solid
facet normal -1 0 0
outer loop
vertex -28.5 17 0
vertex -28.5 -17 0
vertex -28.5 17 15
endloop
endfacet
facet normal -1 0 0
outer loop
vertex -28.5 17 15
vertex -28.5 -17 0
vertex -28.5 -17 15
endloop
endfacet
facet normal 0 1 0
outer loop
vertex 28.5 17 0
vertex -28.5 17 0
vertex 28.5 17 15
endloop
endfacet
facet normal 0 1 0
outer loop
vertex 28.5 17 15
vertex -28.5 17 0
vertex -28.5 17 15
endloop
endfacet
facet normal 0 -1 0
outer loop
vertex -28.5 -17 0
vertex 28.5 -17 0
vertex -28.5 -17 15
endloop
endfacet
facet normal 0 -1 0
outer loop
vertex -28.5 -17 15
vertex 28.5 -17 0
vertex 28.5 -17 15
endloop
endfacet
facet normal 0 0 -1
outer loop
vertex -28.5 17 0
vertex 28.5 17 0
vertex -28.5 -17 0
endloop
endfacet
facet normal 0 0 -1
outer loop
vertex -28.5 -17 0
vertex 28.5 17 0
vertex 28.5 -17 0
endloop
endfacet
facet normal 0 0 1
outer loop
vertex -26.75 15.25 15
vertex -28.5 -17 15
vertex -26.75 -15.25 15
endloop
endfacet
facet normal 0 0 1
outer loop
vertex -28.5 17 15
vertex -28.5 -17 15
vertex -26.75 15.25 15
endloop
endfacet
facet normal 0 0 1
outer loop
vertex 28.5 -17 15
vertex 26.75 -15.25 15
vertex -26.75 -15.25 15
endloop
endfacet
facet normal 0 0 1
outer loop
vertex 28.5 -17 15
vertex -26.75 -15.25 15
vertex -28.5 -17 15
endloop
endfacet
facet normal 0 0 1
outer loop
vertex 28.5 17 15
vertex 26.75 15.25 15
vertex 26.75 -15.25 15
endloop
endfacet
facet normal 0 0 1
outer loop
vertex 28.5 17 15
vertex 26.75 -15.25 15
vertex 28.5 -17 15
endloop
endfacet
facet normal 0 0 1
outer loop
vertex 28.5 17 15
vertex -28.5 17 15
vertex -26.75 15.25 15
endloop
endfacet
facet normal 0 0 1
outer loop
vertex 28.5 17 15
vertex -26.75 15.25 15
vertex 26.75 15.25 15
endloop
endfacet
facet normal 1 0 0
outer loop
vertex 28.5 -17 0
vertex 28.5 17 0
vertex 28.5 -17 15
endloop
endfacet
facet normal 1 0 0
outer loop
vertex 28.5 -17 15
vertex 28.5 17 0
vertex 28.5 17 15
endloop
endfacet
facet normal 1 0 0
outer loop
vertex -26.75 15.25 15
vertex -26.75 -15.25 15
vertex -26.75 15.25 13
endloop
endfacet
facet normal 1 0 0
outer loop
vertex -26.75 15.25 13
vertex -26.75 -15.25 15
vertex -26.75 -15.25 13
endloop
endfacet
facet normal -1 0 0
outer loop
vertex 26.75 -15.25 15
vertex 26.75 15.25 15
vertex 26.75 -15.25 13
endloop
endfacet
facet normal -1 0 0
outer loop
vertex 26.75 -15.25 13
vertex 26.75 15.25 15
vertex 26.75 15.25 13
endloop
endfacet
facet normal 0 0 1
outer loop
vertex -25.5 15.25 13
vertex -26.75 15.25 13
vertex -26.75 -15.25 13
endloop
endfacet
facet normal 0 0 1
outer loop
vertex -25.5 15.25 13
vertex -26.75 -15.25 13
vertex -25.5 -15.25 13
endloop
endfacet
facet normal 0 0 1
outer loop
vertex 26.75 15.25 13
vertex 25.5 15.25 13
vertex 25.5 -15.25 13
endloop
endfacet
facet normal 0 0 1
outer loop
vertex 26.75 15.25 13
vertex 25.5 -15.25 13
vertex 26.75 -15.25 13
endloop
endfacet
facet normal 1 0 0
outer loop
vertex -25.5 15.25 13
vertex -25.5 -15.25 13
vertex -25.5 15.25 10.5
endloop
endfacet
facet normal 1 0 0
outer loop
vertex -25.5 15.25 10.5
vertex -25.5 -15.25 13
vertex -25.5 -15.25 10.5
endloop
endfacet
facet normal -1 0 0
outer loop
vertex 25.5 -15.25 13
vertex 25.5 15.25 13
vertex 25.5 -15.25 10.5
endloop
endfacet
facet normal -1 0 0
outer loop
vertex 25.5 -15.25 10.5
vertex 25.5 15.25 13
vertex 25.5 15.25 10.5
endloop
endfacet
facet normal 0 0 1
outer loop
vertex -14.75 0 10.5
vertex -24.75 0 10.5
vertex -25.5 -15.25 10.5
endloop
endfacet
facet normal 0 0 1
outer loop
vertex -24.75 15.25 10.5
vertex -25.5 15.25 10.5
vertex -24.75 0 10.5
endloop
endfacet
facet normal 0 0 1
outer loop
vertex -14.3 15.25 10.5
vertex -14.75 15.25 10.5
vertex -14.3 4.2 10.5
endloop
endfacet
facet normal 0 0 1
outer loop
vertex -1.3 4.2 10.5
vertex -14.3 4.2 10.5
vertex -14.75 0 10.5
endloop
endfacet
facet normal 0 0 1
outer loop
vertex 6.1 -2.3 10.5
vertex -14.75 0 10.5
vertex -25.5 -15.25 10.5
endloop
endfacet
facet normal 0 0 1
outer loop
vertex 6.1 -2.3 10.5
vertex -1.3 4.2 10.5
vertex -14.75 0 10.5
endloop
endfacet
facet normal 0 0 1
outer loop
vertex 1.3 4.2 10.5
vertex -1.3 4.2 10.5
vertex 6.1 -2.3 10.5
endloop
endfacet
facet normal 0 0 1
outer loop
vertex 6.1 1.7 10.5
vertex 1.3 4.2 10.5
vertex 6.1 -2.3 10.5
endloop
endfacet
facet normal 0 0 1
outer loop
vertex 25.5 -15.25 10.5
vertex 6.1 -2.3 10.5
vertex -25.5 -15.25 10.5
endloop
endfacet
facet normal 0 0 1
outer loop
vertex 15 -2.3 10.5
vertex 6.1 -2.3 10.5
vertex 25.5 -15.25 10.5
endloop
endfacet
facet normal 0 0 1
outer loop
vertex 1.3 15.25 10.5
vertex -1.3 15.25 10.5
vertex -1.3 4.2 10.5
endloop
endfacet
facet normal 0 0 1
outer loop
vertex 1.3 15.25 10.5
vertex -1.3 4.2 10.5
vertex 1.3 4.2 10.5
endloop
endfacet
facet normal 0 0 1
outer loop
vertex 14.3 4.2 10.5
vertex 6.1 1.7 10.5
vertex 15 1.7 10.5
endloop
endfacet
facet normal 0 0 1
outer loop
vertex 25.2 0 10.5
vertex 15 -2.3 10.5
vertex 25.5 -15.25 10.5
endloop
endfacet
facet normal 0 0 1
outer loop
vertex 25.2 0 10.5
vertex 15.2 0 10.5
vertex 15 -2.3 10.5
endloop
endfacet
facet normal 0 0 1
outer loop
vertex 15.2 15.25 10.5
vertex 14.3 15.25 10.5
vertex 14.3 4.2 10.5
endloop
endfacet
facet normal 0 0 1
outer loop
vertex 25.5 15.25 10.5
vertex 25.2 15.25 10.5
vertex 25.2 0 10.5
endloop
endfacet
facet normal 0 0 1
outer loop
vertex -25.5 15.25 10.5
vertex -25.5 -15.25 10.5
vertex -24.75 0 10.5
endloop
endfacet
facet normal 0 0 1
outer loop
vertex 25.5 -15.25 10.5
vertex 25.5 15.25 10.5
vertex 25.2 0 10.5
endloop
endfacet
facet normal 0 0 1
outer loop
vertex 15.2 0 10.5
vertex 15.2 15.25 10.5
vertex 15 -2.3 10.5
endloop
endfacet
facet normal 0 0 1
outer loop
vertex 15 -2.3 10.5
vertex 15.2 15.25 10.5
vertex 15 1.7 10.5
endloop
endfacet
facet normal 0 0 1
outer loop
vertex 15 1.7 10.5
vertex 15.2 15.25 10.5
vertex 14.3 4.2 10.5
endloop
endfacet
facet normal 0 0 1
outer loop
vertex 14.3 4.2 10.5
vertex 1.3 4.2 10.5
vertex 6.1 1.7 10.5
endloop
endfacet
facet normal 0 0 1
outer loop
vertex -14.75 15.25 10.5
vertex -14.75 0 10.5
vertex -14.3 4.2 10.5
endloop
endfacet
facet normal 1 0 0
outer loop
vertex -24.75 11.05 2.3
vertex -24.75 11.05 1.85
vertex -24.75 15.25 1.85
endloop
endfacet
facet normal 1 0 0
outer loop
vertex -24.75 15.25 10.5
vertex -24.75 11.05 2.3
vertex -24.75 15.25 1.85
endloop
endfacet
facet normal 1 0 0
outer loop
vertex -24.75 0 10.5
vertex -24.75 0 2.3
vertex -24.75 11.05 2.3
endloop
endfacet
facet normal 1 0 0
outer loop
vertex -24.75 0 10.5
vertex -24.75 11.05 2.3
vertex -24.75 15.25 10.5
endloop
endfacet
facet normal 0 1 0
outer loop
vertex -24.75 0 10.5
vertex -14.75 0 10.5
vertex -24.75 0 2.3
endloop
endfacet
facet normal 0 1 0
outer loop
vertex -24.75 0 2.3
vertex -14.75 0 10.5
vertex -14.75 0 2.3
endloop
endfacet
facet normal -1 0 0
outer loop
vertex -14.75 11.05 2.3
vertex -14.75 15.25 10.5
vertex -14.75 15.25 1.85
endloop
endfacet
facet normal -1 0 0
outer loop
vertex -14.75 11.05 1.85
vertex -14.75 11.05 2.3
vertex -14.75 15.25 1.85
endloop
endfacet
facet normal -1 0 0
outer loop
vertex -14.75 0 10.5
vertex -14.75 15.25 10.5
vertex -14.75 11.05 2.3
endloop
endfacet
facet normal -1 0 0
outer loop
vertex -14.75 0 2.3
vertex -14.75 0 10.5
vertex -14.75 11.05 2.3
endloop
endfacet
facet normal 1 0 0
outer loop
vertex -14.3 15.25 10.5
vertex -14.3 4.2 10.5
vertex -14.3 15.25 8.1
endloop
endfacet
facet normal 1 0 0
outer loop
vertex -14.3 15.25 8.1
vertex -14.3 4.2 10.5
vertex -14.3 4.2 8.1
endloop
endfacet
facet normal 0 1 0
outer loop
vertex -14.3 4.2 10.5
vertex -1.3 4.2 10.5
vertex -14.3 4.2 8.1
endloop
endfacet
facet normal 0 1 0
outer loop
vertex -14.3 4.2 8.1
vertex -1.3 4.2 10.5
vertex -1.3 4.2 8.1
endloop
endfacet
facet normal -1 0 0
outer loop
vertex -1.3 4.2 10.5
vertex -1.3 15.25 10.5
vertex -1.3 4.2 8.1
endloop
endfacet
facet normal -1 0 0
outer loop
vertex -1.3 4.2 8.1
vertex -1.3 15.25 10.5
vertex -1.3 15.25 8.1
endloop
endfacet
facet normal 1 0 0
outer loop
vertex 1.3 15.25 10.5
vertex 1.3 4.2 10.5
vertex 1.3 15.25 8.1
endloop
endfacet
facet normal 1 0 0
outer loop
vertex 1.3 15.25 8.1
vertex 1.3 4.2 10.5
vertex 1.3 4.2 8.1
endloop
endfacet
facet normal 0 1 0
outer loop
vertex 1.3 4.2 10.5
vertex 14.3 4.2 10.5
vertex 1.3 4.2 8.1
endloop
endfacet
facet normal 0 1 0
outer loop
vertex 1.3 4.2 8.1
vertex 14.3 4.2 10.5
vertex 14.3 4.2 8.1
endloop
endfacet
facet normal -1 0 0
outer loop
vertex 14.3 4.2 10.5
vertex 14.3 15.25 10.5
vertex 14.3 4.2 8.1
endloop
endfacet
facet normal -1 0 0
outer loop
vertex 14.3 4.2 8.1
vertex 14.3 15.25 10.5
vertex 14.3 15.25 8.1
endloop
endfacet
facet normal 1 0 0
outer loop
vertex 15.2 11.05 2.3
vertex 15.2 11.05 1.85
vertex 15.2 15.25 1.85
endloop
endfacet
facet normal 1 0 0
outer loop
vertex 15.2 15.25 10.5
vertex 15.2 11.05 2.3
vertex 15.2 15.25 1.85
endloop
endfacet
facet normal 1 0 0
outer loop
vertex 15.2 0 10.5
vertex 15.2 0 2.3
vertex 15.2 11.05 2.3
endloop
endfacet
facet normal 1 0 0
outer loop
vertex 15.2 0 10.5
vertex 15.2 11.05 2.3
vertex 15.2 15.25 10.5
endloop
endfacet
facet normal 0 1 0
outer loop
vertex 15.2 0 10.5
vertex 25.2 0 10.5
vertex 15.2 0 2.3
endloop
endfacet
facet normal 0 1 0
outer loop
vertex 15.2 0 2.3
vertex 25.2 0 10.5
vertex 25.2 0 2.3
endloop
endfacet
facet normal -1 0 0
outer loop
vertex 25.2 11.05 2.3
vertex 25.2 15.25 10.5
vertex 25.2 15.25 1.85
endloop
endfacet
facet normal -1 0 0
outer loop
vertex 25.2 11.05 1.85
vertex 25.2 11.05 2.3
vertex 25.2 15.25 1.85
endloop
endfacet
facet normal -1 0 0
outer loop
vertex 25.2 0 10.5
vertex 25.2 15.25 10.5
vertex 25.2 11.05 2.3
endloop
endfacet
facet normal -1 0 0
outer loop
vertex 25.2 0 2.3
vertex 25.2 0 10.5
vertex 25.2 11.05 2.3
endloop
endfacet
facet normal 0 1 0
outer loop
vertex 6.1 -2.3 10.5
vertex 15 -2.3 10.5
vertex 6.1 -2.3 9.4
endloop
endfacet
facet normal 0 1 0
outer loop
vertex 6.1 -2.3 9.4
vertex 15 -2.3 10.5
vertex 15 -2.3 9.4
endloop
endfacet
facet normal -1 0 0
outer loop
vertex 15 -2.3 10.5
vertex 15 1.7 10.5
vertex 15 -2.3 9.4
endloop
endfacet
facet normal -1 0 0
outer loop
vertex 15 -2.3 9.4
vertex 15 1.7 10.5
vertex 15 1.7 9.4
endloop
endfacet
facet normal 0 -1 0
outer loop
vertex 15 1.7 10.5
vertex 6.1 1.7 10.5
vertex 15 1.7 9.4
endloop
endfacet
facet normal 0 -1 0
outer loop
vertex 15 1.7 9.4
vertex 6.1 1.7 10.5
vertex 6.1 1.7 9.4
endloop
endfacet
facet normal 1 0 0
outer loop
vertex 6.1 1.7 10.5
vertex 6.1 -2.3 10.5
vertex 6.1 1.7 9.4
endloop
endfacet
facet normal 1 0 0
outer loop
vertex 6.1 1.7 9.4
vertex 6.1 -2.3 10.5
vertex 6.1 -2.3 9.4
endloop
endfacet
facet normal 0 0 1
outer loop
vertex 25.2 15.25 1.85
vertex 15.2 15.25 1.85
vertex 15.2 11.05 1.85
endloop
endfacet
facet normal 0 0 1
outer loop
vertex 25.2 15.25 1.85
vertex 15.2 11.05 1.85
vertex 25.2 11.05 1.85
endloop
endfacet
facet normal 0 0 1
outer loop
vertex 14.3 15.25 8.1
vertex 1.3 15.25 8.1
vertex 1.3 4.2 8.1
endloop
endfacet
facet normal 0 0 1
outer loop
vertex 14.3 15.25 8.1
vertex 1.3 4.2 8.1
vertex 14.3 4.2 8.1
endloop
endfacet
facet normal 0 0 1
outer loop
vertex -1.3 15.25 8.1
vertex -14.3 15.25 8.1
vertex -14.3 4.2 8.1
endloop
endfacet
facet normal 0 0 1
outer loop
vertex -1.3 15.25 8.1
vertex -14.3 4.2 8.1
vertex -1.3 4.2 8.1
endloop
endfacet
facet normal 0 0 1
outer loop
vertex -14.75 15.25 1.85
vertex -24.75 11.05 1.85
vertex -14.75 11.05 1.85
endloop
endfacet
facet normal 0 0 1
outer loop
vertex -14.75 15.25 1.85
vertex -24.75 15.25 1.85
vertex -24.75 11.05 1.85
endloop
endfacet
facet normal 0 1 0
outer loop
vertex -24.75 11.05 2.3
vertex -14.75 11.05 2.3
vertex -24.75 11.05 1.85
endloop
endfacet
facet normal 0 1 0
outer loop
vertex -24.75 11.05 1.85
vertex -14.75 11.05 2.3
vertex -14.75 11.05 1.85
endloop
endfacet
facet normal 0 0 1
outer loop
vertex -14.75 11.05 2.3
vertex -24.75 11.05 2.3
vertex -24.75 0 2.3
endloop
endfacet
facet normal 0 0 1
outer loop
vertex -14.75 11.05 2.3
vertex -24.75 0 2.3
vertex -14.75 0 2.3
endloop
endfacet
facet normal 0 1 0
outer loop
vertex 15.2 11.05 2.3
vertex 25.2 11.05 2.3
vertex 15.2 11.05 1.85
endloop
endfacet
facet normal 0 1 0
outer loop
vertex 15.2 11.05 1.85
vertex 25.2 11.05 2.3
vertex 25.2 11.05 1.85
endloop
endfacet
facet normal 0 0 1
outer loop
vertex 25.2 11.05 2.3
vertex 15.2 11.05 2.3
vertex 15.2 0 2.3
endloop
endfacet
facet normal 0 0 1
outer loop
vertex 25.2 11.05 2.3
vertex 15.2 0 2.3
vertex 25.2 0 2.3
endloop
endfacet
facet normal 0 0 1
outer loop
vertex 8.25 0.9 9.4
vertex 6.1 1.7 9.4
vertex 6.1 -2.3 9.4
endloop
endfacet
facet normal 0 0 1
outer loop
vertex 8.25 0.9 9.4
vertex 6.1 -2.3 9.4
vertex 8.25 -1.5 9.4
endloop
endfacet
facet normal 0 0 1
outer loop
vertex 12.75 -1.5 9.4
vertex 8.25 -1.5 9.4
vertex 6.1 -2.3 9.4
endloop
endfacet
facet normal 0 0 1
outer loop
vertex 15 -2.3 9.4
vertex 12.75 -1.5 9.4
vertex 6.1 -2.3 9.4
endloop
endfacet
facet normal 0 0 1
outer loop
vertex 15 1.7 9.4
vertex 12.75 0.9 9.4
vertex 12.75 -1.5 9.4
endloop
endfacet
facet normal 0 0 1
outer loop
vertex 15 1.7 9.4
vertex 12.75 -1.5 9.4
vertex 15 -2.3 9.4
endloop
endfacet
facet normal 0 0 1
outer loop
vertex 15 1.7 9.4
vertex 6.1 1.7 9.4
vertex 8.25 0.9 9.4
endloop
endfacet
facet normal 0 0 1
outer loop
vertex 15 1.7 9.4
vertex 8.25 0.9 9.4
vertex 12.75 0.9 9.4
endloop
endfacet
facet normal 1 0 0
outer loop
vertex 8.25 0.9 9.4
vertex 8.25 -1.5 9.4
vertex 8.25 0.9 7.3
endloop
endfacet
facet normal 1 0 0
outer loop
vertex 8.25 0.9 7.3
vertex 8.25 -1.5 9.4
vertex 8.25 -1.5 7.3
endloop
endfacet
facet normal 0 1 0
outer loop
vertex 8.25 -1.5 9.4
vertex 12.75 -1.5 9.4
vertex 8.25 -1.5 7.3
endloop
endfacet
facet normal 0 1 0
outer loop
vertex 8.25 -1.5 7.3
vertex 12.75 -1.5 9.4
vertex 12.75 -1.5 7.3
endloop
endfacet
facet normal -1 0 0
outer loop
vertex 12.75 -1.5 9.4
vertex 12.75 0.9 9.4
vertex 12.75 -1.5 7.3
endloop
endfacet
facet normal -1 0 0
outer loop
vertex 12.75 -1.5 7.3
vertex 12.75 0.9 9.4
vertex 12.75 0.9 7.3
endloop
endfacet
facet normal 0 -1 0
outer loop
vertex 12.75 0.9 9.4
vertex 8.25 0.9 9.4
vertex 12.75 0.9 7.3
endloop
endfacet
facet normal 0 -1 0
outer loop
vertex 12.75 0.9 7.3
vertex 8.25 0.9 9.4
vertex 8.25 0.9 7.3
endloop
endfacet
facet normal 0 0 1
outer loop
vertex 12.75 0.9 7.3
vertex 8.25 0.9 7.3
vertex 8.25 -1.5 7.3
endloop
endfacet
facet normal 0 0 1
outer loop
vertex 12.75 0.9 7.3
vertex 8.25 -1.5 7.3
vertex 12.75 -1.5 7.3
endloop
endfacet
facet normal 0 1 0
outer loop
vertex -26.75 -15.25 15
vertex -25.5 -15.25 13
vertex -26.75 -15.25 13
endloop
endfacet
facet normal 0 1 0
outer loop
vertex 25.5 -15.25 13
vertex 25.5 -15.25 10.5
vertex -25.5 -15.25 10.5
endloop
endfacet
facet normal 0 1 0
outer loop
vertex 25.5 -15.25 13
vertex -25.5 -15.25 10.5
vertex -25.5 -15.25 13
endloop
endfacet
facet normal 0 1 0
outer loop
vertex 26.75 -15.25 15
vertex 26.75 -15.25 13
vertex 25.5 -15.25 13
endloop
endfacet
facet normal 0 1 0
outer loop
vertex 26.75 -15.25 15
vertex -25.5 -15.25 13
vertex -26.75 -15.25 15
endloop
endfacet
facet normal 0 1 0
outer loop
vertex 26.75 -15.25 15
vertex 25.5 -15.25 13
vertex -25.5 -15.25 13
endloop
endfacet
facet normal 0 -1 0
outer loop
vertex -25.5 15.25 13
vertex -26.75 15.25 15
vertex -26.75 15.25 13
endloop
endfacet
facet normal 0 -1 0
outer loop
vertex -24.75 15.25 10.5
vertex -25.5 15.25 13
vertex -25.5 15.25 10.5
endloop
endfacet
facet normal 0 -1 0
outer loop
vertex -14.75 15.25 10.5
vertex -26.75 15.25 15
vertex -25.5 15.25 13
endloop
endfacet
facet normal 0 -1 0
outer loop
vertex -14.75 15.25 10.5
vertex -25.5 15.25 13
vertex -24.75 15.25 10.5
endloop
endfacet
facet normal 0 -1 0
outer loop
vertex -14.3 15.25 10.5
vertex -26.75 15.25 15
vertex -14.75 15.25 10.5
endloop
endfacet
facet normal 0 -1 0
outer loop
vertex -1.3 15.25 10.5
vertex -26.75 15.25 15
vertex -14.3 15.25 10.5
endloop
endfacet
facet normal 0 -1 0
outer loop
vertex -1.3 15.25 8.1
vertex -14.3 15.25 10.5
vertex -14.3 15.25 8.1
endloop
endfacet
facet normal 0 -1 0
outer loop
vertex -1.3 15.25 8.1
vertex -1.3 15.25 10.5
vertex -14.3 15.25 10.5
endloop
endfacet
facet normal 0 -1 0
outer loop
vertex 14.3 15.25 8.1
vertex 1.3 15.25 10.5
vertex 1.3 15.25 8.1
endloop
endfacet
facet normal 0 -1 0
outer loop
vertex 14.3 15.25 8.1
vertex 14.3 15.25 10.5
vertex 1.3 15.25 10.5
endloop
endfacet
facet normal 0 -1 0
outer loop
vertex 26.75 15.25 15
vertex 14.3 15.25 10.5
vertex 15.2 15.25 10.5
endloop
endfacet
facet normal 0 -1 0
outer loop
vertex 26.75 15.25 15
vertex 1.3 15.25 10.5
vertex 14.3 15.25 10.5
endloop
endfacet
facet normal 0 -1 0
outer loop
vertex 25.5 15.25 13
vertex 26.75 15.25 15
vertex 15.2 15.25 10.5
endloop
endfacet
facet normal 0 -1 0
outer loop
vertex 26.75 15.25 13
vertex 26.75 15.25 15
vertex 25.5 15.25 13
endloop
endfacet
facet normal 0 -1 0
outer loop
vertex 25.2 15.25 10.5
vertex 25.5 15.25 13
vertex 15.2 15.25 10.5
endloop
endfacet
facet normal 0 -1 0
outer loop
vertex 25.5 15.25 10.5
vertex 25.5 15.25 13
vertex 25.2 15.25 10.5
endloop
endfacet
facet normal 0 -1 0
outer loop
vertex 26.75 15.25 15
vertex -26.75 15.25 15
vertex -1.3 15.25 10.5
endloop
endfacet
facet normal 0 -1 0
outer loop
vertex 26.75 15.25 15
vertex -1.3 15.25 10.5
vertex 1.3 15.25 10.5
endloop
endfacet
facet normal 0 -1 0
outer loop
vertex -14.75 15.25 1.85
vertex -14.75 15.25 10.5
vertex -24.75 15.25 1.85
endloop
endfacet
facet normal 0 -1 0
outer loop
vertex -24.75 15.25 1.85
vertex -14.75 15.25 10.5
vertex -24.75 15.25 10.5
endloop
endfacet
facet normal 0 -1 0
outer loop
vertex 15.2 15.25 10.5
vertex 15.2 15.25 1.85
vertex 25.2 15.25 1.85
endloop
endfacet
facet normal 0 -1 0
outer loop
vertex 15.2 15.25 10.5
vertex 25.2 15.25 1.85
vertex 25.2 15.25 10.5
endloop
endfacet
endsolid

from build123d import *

# Parameters (mm, degrees)
SKETCH_W        = 57
SKETCH_H        = 34
PAD_DEPTH       = 15
SKETCH001_W     = 53.5
SKETCH001_H     = 30.5
POCKET_DEPTH    = 2
SKETCH002_W     = 10
SKETCH002_H     = 15.25
POCKET001_DEPTH = 10.7
SKETCH003_W     = 10
SKETCH003_H     = 4.2
POCKET002_DEPTH = 0.45
SKETCH004_W     = 13
SKETCH004_H     = 11.05
POCKET003_DEPTH = 4.9
SKETCH005_W     = 8.9
SKETCH005_H     = 4
POCKET004_DEPTH = 3.6
SKETCH006_W     = 4.5
SKETCH006_H     = 2.4
POCKET005_DEPTH = 2.1
SKETCH007_W     = 51
SKETCH007_H     = 30.5
POCKET006_DEPTH = 2.5


with BuildPart() as part:
    # Sketch → Pad (new body)
    with BuildSketch(Plane.XY):
        Rectangle(SKETCH_W, SKETCH_H)
    extrude(amount=PAD_DEPTH)

    # Sketch001 (on Face6 of Pad) → Pocket (cut)
    with BuildSketch(Plane.XY.offset(15)):
        Rectangle(SKETCH001_W, SKETCH001_H)
    extrude(amount=-POCKET_DEPTH, mode=Mode.SUBTRACT)

    # Sketch002 (on Face11 of Pocket) → Pocket001 (cut)
    with BuildSketch(Plane.XY.offset(13)):
        with Locations((-19.75, 7.625)):
            Rectangle(SKETCH002_W, SKETCH002_H)
        with Locations((20.2, 7.625)):
            Rectangle(SKETCH002_W, SKETCH002_H)
    extrude(amount=-POCKET001_DEPTH, mode=Mode.SUBTRACT)

    # Sketch003 (on Face18 of Pocket001) → Pocket002 (cut)
    with BuildSketch(Plane.XY.offset(2.3)):
        with Locations((-19.75, 13.15)):
            Rectangle(SKETCH003_W, SKETCH003_H)
        with Locations((20.2, 13.15)):
            Rectangle(SKETCH003_W, SKETCH003_H)
    extrude(amount=-POCKET002_DEPTH, mode=Mode.SUBTRACT)

    # Sketch004 (on Face10 of Pocket002) → Pocket003 (cut)
    with BuildSketch(Plane.XY.offset(13)):
        with Locations((-7.8, 9.725)):
            Rectangle(SKETCH004_W, SKETCH004_H)
        with Locations((7.8, 9.725)):
            Rectangle(SKETCH004_W, SKETCH004_H)
    extrude(amount=-POCKET003_DEPTH, mode=Mode.SUBTRACT)

    # Sketch005 (on Face10 of Pocket003) → Pocket004 (cut)
    with BuildSketch(Plane.XY.offset(13)):
        with Locations((10.55, -0.3)):
            Rectangle(SKETCH005_W, SKETCH005_H)
    extrude(amount=-POCKET004_DEPTH, mode=Mode.SUBTRACT)

    # Sketch006 (on Face36 of Pocket004) → Pocket005 (cut)
    with BuildSketch(Plane.XY.offset(9.4)):
        with Locations((10.5, -0.3)):
            Rectangle(SKETCH006_W, SKETCH006_H)
    extrude(amount=-POCKET005_DEPTH, mode=Mode.SUBTRACT)

    # Sketch007 (on Face11 of Pocket005) → Pocket006 (cut)
    with BuildSketch(Plane.XY.offset(13)):
        Rectangle(SKETCH007_W, SKETCH007_H)
    extrude(amount=-POCKET006_DEPTH, mode=Mode.SUBTRACT)


solid = part.part
